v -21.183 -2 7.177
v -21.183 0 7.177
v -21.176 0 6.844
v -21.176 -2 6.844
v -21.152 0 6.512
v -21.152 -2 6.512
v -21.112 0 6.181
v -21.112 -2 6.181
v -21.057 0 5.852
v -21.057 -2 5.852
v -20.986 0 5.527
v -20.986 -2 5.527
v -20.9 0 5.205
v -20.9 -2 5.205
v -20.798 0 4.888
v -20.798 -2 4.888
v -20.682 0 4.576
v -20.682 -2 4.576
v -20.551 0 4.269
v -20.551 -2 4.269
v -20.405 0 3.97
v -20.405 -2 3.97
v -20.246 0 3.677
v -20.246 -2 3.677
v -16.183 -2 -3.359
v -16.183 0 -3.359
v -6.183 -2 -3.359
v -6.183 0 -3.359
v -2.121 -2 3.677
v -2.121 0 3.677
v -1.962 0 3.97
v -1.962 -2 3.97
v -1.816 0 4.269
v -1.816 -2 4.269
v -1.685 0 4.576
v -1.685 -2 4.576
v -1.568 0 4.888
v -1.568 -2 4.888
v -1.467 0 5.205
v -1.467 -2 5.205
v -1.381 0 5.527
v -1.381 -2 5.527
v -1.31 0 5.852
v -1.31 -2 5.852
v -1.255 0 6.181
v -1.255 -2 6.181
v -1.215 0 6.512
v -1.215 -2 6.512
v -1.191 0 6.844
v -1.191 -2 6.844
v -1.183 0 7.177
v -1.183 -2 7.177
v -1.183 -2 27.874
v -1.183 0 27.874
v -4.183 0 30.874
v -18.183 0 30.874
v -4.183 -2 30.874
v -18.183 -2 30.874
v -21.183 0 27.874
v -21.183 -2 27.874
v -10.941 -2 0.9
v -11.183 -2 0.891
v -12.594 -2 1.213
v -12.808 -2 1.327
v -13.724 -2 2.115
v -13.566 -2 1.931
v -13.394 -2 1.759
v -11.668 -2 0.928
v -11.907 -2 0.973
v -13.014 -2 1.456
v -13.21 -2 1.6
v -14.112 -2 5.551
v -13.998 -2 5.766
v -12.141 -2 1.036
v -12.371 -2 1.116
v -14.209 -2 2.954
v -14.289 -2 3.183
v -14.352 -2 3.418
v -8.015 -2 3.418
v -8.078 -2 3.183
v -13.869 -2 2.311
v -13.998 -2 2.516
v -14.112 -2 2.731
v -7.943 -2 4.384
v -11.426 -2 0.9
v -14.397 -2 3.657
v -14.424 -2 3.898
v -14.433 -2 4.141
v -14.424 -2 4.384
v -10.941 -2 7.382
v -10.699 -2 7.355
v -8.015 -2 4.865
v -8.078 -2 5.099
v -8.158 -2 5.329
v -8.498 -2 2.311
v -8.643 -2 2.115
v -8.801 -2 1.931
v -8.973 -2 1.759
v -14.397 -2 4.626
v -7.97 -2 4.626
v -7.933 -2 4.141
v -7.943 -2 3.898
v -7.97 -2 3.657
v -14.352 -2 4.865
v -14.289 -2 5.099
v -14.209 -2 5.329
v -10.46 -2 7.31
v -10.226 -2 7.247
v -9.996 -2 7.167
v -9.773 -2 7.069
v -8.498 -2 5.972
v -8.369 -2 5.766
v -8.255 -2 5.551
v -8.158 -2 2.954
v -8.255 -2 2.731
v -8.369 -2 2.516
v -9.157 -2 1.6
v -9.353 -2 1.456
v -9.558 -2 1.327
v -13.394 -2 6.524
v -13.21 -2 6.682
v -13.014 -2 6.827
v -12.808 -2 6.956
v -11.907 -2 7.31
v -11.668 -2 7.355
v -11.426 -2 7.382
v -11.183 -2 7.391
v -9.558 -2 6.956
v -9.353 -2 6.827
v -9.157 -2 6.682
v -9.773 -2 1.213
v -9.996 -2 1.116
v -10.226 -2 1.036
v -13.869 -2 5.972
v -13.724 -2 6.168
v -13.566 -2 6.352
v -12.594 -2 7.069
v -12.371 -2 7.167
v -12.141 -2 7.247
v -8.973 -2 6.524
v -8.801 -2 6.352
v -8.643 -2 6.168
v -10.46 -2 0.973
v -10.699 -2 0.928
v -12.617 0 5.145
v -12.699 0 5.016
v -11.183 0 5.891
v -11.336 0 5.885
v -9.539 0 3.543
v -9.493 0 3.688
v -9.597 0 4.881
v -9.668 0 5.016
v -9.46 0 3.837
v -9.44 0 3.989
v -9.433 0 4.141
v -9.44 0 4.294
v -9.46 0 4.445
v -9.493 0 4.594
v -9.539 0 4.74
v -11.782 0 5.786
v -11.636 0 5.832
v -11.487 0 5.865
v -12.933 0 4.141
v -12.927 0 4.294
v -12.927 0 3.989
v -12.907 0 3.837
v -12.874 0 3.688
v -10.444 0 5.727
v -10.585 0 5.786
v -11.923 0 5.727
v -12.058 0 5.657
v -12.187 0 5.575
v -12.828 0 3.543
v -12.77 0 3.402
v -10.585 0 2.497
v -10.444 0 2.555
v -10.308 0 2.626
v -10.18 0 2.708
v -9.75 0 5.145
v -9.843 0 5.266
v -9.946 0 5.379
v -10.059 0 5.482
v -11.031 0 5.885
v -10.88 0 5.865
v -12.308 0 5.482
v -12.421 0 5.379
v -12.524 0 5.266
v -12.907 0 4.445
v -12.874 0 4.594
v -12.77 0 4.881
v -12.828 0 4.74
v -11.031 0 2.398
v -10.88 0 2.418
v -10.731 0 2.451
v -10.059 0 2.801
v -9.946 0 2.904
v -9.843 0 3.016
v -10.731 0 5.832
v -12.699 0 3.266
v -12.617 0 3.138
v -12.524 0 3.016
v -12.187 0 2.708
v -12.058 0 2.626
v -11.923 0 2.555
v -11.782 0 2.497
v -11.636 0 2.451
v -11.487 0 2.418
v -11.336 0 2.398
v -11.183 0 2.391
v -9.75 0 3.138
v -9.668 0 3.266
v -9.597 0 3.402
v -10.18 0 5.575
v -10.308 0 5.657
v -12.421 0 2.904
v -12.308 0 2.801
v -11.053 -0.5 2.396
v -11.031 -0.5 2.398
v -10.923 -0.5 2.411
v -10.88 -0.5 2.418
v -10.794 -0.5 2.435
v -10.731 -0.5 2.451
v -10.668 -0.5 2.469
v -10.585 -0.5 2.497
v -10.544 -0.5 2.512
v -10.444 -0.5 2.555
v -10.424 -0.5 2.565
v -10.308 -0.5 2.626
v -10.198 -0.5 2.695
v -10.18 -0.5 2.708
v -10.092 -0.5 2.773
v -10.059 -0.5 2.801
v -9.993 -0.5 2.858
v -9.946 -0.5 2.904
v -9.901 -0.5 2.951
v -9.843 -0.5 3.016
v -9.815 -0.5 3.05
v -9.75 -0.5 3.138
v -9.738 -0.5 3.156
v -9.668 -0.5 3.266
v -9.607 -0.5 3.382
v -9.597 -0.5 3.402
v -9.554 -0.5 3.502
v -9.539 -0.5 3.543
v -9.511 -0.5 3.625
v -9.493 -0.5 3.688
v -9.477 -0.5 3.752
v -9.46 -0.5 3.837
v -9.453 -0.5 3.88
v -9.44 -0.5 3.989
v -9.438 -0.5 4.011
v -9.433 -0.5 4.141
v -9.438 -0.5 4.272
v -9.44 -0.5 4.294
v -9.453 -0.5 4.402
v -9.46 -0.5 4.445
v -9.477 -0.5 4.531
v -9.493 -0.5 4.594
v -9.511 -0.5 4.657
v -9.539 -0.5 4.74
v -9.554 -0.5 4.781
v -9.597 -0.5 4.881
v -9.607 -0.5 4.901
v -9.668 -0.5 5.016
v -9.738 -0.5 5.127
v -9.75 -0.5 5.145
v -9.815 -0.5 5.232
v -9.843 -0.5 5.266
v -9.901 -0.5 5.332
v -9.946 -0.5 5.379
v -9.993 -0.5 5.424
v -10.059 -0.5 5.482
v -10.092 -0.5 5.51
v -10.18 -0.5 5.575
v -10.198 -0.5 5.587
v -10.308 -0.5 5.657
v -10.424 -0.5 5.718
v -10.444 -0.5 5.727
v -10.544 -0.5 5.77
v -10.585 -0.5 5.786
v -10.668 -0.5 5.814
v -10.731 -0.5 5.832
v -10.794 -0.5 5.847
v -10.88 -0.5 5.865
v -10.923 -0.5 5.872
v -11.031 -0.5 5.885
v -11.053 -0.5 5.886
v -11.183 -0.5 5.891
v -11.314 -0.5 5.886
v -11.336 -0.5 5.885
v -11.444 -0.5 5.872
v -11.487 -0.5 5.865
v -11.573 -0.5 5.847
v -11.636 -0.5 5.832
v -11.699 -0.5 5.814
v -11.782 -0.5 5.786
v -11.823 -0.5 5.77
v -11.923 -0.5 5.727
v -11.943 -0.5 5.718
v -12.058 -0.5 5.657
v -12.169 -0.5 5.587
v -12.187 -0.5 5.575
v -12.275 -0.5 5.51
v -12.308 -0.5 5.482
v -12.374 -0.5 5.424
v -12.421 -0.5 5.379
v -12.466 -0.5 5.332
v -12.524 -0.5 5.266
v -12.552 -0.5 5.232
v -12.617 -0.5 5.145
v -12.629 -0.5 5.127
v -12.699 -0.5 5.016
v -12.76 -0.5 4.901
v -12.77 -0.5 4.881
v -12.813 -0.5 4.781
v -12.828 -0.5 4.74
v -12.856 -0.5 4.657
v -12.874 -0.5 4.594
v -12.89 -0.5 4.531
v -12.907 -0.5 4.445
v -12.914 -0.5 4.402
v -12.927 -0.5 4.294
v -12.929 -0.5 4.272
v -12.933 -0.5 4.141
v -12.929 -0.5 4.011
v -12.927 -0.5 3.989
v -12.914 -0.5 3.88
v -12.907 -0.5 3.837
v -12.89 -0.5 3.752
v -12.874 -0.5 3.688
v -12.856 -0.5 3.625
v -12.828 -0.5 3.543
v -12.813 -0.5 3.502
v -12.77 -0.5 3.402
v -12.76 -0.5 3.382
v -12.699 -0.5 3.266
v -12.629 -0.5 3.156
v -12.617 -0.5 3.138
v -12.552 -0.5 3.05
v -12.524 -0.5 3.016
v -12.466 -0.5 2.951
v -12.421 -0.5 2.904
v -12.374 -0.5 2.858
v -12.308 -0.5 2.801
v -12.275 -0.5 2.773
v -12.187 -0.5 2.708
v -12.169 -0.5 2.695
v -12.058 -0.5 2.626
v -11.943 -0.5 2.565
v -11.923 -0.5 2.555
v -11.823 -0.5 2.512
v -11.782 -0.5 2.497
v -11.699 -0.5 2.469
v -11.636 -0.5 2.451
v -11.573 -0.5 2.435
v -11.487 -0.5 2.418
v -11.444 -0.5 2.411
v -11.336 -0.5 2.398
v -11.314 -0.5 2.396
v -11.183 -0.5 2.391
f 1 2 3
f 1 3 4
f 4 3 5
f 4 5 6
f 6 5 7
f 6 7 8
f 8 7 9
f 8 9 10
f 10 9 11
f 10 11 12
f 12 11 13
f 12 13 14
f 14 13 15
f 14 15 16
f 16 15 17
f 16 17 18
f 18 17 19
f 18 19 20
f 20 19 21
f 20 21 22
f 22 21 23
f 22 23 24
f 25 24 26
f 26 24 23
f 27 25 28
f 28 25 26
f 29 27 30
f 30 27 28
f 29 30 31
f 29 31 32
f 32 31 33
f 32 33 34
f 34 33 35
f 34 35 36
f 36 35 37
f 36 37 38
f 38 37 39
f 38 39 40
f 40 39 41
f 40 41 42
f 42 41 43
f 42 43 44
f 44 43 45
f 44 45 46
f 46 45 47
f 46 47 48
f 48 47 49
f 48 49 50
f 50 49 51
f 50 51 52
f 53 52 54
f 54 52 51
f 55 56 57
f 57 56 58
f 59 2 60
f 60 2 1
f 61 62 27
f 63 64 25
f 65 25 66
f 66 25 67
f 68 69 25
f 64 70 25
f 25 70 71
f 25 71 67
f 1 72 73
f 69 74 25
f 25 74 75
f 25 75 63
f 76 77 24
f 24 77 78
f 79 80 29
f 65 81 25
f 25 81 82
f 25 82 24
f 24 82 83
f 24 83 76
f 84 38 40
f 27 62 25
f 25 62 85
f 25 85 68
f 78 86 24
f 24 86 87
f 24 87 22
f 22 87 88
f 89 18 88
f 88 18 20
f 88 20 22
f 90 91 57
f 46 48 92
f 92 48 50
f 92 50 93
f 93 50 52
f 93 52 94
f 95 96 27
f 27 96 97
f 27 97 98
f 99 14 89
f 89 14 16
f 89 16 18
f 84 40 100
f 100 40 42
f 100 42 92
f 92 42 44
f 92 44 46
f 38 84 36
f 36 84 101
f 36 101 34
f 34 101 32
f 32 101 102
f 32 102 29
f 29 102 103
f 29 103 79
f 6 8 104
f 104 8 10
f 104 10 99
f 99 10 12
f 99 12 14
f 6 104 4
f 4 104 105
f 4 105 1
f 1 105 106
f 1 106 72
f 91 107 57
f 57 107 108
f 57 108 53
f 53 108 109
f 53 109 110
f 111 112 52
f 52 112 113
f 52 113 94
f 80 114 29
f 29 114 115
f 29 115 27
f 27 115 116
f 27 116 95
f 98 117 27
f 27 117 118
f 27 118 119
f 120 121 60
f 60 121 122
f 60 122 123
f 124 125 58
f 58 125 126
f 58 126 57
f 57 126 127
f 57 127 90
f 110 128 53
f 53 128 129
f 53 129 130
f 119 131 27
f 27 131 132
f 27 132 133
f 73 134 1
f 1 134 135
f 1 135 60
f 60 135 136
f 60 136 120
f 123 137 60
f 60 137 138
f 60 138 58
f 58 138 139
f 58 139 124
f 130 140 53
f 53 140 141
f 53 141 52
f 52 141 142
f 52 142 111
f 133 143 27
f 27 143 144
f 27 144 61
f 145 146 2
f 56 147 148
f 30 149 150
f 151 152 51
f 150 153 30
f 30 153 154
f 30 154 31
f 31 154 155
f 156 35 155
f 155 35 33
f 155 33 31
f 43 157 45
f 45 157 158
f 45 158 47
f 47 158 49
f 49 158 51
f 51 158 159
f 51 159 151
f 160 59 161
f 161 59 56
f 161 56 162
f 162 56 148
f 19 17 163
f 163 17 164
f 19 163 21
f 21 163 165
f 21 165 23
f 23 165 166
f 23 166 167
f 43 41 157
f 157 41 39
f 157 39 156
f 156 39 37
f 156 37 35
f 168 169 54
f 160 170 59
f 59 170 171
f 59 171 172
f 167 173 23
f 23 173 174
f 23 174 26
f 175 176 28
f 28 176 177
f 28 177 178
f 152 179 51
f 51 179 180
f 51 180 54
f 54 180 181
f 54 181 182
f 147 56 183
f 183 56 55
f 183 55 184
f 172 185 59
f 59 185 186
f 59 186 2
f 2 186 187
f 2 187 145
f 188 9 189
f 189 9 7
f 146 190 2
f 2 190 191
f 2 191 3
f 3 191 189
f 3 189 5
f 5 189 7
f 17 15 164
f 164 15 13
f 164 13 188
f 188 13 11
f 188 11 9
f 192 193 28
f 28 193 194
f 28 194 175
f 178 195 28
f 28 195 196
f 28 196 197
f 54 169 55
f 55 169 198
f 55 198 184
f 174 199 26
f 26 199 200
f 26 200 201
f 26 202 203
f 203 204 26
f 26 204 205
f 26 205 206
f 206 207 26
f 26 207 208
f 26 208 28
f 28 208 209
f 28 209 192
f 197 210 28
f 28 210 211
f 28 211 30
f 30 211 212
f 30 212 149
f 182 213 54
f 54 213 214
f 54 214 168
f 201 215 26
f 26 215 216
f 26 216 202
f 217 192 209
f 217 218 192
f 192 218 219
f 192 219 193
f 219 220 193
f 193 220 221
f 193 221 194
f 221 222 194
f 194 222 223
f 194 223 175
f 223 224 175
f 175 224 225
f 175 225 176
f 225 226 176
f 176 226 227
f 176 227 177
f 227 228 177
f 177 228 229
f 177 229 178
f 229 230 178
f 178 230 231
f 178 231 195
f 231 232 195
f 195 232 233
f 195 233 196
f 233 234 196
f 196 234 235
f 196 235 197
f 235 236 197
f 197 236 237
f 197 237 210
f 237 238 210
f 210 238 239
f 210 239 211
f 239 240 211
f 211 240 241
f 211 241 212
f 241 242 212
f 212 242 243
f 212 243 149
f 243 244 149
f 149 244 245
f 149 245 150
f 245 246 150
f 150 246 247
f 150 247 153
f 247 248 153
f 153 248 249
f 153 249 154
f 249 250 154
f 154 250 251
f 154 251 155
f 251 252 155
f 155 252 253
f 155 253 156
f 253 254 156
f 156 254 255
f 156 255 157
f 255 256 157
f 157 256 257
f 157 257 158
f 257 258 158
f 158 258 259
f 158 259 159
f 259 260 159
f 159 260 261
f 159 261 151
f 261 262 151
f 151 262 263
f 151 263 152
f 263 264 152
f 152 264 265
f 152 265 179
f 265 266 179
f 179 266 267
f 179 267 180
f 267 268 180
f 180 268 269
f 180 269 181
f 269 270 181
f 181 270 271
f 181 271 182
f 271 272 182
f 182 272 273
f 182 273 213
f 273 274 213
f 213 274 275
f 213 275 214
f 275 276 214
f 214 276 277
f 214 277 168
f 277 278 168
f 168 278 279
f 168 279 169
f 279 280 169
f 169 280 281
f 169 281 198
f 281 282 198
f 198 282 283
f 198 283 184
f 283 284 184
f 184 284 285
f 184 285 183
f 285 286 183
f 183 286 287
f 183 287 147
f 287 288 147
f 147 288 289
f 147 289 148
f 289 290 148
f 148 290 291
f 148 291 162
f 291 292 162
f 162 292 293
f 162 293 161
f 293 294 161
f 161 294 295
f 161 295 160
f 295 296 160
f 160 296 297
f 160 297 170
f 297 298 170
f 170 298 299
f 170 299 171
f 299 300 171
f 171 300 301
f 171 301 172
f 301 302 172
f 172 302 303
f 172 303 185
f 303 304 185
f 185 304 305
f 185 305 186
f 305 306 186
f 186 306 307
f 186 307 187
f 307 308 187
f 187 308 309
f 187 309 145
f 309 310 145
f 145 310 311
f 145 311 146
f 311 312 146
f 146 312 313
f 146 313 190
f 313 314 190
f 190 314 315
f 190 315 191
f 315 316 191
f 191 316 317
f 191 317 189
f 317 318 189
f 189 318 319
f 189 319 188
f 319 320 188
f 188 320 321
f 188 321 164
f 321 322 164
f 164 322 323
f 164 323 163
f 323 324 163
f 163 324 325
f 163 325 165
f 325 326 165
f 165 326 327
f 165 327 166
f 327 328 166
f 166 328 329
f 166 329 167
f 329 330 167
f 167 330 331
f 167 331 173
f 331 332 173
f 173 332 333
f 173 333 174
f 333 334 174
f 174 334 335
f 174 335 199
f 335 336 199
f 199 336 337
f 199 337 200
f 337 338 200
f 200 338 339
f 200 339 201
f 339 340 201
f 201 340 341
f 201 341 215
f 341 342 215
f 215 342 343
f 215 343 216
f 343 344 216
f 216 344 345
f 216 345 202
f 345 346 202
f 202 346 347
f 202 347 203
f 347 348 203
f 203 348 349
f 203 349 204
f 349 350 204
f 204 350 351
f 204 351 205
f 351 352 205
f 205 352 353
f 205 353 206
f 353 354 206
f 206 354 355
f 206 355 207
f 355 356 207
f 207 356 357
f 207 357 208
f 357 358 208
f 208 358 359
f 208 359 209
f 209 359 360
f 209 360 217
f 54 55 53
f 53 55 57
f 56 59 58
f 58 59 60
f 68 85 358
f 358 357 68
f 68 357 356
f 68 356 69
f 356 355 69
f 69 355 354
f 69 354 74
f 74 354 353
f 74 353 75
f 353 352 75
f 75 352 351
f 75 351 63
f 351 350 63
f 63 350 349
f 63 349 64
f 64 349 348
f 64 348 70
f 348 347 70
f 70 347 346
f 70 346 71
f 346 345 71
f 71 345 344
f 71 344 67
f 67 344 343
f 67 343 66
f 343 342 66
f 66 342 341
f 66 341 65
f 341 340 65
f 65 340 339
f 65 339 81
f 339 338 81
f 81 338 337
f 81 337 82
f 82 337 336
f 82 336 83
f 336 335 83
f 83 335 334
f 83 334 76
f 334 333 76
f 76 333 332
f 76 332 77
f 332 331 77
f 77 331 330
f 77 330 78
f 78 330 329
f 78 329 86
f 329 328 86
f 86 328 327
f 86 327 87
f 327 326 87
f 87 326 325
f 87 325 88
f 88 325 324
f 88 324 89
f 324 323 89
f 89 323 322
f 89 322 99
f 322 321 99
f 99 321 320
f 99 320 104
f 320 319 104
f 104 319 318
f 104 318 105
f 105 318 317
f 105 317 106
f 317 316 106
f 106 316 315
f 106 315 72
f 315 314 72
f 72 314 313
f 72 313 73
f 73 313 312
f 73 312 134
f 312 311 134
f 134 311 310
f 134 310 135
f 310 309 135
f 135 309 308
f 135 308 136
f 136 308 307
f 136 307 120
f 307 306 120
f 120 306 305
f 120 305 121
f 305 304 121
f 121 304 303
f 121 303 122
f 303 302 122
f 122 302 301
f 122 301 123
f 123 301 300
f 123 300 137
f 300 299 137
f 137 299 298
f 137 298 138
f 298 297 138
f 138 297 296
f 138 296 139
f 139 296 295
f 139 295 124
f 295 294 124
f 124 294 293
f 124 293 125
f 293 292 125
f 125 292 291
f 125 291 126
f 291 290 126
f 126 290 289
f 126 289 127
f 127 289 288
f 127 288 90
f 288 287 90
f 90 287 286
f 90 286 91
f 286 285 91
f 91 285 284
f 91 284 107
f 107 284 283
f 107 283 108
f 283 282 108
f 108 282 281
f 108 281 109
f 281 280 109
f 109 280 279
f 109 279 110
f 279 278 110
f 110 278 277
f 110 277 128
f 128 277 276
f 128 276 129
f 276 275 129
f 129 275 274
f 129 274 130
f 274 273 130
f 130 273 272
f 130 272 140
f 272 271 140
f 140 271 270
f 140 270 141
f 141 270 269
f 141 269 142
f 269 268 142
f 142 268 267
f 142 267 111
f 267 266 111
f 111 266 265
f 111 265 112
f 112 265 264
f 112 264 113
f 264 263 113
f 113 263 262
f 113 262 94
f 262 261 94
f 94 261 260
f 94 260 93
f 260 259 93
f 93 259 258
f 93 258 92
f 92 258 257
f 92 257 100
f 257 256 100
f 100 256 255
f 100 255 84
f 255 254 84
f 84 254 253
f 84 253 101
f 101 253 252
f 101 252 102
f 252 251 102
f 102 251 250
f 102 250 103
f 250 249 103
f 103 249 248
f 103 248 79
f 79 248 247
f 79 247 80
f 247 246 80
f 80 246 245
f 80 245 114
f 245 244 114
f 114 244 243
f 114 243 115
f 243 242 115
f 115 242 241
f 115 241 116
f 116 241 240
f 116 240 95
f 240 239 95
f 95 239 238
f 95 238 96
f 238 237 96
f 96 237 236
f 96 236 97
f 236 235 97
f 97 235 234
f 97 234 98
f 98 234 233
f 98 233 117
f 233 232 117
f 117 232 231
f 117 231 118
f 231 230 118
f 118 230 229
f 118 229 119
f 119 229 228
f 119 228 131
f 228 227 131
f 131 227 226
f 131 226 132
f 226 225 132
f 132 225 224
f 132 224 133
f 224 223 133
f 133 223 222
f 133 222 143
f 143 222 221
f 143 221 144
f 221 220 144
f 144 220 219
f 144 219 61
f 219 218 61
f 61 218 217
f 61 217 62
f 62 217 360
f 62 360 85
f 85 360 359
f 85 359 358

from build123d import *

# Parameters (mm, degrees)
EXTRUDE_1_DEPTH     = 2
SKETCH_3_R          = 1.75
CUT_EXTRUDE_1_DEPTH = 10
CHAMFER_1_SIZE      = 3
CHAMFER_2_SIZE      = 1.5


with BuildPart() as part:
    # Эскиз2 → Бобышка-Вытянуть1 (new body)
    with BuildSketch(Plane(origin=(0, 0, 0), x_dir=(1, 0, 0), z_dir=(0, 1, 0))):
        with BuildLine():
            Line((-1.183478947, -7.641318816), (-1.183478947, -30.873613644))
            Line((-1.183478947, -30.873613644), (-21.183478947, -30.873613644))
            Line((-21.183478947, -30.873613644), (-21.183478947, -7.641318816))
            Line((-21.183478947, -7.641318816), (-21.183478947, -7.177217201))
            ThreePointArc((-21.183478947, -7.177217201), (-20.944959731, -5.365483885), (-20.245656774, -3.677217201))
            Line((-20.245656774, -3.677217201), (-16.183478947, 3.358681184))
            Line((-16.183478947, 3.358681184), (-6.183478947, 3.358681184))
            Line((-6.183478947, 3.358681184), (-2.121301121, -3.677217201))
            ThreePointArc((-2.121301121, -3.677217201), (-1.421998163, -5.365483885), (-1.183478947, -7.177217201))
            Line((-1.183478947, -7.177217201), (-1.183478947, -7.641318816))
        make_face()
    extrude(amount=-EXTRUDE_1_DEPTH)

    # Эскиз3 → Вырез-Вытянуть1 (cut)
    with BuildSketch(Plane.XZ.offset(2)):
        with Locations(Location((-11.183478947, 4.141318816, 0), (0, 0, 270))):
            Circle(SKETCH_3_R)
    extrude(amount=-CUT_EXTRUDE_1_DEPTH, mode=Mode.SUBTRACT)

    # Фаска1
    chamfer_1_edges = [part.edges().sort_by_distance(p)[0] for p in [
        (-1.183478947, -1, 30.873613644),
        (-21.183478947, -1, 30.873613644),
    ]]
    chamfer(chamfer_1_edges, length=CHAMFER_1_SIZE)

    # Фаска2
    chamfer_2_edges = [part.edges().sort_by_distance(p)[0] for p in [
        (-11.183478947, -2, 5.891318816),
    ]]
    chamfer(chamfer_2_edges, length=CHAMFER_2_SIZE)


solid = part.part
